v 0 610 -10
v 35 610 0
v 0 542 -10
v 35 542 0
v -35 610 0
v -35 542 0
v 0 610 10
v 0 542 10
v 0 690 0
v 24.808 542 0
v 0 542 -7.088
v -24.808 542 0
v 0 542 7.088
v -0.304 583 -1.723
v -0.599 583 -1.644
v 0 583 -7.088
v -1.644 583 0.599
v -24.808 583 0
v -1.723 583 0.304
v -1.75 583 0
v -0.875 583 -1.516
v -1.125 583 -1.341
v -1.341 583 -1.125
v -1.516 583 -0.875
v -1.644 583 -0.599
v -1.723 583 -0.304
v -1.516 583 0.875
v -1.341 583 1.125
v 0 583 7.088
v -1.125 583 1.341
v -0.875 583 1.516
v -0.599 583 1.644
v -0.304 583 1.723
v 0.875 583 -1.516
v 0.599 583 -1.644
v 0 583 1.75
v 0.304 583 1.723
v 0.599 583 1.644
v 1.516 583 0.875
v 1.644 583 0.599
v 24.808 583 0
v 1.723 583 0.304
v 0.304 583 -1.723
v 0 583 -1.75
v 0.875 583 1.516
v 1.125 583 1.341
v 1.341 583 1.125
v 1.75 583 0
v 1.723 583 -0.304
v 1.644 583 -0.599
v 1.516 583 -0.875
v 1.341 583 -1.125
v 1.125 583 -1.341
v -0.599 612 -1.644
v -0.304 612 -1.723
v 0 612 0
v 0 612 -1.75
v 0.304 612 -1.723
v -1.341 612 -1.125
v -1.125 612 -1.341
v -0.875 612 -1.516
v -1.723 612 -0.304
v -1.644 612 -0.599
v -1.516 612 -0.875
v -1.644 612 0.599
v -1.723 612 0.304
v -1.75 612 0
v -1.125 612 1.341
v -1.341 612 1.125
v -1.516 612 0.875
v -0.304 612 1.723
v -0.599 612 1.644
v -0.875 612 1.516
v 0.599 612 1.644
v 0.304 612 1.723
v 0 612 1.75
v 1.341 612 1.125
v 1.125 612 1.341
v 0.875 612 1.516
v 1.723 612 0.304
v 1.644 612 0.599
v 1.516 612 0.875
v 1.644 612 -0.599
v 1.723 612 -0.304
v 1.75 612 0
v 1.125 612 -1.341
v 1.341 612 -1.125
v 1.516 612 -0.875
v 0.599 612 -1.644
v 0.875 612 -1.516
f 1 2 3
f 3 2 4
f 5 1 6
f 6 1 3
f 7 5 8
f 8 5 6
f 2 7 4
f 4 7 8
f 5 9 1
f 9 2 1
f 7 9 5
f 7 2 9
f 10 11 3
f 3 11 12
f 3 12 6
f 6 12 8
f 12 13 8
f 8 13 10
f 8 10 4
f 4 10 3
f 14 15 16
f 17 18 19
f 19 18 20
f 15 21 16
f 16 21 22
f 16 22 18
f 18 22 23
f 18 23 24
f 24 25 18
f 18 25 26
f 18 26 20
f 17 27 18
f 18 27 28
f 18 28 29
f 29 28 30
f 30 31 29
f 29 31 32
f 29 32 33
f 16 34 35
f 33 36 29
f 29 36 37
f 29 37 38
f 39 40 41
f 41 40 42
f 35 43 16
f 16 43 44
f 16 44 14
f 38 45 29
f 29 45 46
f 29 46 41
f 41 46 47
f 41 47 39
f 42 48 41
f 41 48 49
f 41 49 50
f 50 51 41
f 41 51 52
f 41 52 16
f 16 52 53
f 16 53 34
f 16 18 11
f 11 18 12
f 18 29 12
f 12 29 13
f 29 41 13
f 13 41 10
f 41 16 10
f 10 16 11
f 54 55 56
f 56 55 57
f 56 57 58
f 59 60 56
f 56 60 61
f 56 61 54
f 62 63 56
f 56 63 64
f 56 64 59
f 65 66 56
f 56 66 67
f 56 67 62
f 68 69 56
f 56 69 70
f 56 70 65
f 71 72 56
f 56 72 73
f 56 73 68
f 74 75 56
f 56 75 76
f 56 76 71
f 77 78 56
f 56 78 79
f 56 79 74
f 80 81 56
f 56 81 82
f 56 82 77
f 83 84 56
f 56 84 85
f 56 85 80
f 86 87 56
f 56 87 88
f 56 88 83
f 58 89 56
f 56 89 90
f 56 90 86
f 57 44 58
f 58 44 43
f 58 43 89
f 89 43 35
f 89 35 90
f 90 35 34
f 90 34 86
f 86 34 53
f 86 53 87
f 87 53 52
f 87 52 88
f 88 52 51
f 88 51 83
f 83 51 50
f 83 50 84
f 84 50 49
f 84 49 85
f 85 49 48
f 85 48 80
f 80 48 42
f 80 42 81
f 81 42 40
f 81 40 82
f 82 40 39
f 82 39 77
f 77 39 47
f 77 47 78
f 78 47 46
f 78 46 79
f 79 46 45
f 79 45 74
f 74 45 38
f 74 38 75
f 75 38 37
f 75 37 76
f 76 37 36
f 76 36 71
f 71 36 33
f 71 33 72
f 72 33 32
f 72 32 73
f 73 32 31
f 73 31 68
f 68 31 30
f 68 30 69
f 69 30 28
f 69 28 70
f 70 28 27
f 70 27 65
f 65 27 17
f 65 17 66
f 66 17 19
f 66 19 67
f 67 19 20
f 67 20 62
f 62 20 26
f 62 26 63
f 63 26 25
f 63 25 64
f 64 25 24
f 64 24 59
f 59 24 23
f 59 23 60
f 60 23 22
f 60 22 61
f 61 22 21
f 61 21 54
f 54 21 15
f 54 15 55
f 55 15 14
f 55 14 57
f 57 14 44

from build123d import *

# Parameters (mm, degrees)
SWEEP_1_DEPTH            = 610
CUT_EXTRUDE_2_DEPTH      = 12
SKETCH_21_R              = 1.75
CUT_EXTRUDE_3_DEPTH      = 600
CUT_EXTRUDE_4_DEPTH      = 691.959477934
CUT_EXTRUDE_4_DEPTH_BACK = 691.959477934
SKETCH_26_W              = 70
SKETCH_26_H              = 530
CUT_EXTRUDE_5_DEPTH      = 41


# Read off the part's stored shape, not the designer's step: 扫描1
with BuildPart() as part:
    # 扫描1 outline → 扫描1 (new body)
    with BuildSketch(Plane(origin=(0, 0, 0), x_dir=(1, 0, 0), z_dir=(0, 1, 0))):
        Polygon((-35, 0), (35, 0), (0, 10), align=None)
    sweep_1 = extrude(amount=SWEEP_1_DEPTH)

    # 草图1 → 放样1 section 0
    with BuildSketch(Plane.XY, mode=Mode.PRIVATE) as loft_1_s0:
        with BuildLine():
            Line((-35, 610), (0, 690))
            Line((0, 690), (35, 610))
            Line((35, 610), (-35, 610))
        make_face()
    loft_1 = loft([Vertex(0, 610, -10), loft_1_s0.sketch])

    # 镜向1: 扫描1, 放样1 across plane
    add(sweep_1.mirror(Plane.XY))
    add(loft_1.mirror(Plane.XY))

    # 草图19 → 切除-拉伸2 (cut)
    with BuildSketch(Plane.XZ):
        Polygon((0, -10), (35, 0), (0, 10), (-35, 0), align=None)
    extrude(amount=-CUT_EXTRUDE_2_DEPTH, mode=Mode.SUBTRACT)

    # 草图21 → 切除-拉伸3 (cut)
    with BuildSketch(Plane.XZ.offset(-12)):
        with Locations(Location((0, 0, 0), (0, 0, 270))):
            Circle(SKETCH_21_R)
    extrude(amount=-CUT_EXTRUDE_3_DEPTH, mode=Mode.SUBTRACT)

    # 草图26 → 切除-拉伸4 (cut, two sides: drawn at the far end of the back side and taken through both)
    with BuildSketch(Plane.XY.offset(-CUT_EXTRUDE_4_DEPTH_BACK)):
        with Locations((0, 277)):
            Rectangle(SKETCH_26_W, SKETCH_26_H)
    extrude(amount=CUT_EXTRUDE_4_DEPTH + CUT_EXTRUDE_4_DEPTH_BACK, mode=Mode.SUBTRACT)

    # 草图27 → 切除-拉伸5 (cut)
    with BuildSketch(Plane.XZ.offset(-542)):
        Polygon((0, -7.087956044), (24.807846155, 0), (0, 7.087956044), (-24.807846155, 0), align=None)
    extrude(amount=-CUT_EXTRUDE_5_DEPTH, mode=Mode.SUBTRACT)


solid = part.part
